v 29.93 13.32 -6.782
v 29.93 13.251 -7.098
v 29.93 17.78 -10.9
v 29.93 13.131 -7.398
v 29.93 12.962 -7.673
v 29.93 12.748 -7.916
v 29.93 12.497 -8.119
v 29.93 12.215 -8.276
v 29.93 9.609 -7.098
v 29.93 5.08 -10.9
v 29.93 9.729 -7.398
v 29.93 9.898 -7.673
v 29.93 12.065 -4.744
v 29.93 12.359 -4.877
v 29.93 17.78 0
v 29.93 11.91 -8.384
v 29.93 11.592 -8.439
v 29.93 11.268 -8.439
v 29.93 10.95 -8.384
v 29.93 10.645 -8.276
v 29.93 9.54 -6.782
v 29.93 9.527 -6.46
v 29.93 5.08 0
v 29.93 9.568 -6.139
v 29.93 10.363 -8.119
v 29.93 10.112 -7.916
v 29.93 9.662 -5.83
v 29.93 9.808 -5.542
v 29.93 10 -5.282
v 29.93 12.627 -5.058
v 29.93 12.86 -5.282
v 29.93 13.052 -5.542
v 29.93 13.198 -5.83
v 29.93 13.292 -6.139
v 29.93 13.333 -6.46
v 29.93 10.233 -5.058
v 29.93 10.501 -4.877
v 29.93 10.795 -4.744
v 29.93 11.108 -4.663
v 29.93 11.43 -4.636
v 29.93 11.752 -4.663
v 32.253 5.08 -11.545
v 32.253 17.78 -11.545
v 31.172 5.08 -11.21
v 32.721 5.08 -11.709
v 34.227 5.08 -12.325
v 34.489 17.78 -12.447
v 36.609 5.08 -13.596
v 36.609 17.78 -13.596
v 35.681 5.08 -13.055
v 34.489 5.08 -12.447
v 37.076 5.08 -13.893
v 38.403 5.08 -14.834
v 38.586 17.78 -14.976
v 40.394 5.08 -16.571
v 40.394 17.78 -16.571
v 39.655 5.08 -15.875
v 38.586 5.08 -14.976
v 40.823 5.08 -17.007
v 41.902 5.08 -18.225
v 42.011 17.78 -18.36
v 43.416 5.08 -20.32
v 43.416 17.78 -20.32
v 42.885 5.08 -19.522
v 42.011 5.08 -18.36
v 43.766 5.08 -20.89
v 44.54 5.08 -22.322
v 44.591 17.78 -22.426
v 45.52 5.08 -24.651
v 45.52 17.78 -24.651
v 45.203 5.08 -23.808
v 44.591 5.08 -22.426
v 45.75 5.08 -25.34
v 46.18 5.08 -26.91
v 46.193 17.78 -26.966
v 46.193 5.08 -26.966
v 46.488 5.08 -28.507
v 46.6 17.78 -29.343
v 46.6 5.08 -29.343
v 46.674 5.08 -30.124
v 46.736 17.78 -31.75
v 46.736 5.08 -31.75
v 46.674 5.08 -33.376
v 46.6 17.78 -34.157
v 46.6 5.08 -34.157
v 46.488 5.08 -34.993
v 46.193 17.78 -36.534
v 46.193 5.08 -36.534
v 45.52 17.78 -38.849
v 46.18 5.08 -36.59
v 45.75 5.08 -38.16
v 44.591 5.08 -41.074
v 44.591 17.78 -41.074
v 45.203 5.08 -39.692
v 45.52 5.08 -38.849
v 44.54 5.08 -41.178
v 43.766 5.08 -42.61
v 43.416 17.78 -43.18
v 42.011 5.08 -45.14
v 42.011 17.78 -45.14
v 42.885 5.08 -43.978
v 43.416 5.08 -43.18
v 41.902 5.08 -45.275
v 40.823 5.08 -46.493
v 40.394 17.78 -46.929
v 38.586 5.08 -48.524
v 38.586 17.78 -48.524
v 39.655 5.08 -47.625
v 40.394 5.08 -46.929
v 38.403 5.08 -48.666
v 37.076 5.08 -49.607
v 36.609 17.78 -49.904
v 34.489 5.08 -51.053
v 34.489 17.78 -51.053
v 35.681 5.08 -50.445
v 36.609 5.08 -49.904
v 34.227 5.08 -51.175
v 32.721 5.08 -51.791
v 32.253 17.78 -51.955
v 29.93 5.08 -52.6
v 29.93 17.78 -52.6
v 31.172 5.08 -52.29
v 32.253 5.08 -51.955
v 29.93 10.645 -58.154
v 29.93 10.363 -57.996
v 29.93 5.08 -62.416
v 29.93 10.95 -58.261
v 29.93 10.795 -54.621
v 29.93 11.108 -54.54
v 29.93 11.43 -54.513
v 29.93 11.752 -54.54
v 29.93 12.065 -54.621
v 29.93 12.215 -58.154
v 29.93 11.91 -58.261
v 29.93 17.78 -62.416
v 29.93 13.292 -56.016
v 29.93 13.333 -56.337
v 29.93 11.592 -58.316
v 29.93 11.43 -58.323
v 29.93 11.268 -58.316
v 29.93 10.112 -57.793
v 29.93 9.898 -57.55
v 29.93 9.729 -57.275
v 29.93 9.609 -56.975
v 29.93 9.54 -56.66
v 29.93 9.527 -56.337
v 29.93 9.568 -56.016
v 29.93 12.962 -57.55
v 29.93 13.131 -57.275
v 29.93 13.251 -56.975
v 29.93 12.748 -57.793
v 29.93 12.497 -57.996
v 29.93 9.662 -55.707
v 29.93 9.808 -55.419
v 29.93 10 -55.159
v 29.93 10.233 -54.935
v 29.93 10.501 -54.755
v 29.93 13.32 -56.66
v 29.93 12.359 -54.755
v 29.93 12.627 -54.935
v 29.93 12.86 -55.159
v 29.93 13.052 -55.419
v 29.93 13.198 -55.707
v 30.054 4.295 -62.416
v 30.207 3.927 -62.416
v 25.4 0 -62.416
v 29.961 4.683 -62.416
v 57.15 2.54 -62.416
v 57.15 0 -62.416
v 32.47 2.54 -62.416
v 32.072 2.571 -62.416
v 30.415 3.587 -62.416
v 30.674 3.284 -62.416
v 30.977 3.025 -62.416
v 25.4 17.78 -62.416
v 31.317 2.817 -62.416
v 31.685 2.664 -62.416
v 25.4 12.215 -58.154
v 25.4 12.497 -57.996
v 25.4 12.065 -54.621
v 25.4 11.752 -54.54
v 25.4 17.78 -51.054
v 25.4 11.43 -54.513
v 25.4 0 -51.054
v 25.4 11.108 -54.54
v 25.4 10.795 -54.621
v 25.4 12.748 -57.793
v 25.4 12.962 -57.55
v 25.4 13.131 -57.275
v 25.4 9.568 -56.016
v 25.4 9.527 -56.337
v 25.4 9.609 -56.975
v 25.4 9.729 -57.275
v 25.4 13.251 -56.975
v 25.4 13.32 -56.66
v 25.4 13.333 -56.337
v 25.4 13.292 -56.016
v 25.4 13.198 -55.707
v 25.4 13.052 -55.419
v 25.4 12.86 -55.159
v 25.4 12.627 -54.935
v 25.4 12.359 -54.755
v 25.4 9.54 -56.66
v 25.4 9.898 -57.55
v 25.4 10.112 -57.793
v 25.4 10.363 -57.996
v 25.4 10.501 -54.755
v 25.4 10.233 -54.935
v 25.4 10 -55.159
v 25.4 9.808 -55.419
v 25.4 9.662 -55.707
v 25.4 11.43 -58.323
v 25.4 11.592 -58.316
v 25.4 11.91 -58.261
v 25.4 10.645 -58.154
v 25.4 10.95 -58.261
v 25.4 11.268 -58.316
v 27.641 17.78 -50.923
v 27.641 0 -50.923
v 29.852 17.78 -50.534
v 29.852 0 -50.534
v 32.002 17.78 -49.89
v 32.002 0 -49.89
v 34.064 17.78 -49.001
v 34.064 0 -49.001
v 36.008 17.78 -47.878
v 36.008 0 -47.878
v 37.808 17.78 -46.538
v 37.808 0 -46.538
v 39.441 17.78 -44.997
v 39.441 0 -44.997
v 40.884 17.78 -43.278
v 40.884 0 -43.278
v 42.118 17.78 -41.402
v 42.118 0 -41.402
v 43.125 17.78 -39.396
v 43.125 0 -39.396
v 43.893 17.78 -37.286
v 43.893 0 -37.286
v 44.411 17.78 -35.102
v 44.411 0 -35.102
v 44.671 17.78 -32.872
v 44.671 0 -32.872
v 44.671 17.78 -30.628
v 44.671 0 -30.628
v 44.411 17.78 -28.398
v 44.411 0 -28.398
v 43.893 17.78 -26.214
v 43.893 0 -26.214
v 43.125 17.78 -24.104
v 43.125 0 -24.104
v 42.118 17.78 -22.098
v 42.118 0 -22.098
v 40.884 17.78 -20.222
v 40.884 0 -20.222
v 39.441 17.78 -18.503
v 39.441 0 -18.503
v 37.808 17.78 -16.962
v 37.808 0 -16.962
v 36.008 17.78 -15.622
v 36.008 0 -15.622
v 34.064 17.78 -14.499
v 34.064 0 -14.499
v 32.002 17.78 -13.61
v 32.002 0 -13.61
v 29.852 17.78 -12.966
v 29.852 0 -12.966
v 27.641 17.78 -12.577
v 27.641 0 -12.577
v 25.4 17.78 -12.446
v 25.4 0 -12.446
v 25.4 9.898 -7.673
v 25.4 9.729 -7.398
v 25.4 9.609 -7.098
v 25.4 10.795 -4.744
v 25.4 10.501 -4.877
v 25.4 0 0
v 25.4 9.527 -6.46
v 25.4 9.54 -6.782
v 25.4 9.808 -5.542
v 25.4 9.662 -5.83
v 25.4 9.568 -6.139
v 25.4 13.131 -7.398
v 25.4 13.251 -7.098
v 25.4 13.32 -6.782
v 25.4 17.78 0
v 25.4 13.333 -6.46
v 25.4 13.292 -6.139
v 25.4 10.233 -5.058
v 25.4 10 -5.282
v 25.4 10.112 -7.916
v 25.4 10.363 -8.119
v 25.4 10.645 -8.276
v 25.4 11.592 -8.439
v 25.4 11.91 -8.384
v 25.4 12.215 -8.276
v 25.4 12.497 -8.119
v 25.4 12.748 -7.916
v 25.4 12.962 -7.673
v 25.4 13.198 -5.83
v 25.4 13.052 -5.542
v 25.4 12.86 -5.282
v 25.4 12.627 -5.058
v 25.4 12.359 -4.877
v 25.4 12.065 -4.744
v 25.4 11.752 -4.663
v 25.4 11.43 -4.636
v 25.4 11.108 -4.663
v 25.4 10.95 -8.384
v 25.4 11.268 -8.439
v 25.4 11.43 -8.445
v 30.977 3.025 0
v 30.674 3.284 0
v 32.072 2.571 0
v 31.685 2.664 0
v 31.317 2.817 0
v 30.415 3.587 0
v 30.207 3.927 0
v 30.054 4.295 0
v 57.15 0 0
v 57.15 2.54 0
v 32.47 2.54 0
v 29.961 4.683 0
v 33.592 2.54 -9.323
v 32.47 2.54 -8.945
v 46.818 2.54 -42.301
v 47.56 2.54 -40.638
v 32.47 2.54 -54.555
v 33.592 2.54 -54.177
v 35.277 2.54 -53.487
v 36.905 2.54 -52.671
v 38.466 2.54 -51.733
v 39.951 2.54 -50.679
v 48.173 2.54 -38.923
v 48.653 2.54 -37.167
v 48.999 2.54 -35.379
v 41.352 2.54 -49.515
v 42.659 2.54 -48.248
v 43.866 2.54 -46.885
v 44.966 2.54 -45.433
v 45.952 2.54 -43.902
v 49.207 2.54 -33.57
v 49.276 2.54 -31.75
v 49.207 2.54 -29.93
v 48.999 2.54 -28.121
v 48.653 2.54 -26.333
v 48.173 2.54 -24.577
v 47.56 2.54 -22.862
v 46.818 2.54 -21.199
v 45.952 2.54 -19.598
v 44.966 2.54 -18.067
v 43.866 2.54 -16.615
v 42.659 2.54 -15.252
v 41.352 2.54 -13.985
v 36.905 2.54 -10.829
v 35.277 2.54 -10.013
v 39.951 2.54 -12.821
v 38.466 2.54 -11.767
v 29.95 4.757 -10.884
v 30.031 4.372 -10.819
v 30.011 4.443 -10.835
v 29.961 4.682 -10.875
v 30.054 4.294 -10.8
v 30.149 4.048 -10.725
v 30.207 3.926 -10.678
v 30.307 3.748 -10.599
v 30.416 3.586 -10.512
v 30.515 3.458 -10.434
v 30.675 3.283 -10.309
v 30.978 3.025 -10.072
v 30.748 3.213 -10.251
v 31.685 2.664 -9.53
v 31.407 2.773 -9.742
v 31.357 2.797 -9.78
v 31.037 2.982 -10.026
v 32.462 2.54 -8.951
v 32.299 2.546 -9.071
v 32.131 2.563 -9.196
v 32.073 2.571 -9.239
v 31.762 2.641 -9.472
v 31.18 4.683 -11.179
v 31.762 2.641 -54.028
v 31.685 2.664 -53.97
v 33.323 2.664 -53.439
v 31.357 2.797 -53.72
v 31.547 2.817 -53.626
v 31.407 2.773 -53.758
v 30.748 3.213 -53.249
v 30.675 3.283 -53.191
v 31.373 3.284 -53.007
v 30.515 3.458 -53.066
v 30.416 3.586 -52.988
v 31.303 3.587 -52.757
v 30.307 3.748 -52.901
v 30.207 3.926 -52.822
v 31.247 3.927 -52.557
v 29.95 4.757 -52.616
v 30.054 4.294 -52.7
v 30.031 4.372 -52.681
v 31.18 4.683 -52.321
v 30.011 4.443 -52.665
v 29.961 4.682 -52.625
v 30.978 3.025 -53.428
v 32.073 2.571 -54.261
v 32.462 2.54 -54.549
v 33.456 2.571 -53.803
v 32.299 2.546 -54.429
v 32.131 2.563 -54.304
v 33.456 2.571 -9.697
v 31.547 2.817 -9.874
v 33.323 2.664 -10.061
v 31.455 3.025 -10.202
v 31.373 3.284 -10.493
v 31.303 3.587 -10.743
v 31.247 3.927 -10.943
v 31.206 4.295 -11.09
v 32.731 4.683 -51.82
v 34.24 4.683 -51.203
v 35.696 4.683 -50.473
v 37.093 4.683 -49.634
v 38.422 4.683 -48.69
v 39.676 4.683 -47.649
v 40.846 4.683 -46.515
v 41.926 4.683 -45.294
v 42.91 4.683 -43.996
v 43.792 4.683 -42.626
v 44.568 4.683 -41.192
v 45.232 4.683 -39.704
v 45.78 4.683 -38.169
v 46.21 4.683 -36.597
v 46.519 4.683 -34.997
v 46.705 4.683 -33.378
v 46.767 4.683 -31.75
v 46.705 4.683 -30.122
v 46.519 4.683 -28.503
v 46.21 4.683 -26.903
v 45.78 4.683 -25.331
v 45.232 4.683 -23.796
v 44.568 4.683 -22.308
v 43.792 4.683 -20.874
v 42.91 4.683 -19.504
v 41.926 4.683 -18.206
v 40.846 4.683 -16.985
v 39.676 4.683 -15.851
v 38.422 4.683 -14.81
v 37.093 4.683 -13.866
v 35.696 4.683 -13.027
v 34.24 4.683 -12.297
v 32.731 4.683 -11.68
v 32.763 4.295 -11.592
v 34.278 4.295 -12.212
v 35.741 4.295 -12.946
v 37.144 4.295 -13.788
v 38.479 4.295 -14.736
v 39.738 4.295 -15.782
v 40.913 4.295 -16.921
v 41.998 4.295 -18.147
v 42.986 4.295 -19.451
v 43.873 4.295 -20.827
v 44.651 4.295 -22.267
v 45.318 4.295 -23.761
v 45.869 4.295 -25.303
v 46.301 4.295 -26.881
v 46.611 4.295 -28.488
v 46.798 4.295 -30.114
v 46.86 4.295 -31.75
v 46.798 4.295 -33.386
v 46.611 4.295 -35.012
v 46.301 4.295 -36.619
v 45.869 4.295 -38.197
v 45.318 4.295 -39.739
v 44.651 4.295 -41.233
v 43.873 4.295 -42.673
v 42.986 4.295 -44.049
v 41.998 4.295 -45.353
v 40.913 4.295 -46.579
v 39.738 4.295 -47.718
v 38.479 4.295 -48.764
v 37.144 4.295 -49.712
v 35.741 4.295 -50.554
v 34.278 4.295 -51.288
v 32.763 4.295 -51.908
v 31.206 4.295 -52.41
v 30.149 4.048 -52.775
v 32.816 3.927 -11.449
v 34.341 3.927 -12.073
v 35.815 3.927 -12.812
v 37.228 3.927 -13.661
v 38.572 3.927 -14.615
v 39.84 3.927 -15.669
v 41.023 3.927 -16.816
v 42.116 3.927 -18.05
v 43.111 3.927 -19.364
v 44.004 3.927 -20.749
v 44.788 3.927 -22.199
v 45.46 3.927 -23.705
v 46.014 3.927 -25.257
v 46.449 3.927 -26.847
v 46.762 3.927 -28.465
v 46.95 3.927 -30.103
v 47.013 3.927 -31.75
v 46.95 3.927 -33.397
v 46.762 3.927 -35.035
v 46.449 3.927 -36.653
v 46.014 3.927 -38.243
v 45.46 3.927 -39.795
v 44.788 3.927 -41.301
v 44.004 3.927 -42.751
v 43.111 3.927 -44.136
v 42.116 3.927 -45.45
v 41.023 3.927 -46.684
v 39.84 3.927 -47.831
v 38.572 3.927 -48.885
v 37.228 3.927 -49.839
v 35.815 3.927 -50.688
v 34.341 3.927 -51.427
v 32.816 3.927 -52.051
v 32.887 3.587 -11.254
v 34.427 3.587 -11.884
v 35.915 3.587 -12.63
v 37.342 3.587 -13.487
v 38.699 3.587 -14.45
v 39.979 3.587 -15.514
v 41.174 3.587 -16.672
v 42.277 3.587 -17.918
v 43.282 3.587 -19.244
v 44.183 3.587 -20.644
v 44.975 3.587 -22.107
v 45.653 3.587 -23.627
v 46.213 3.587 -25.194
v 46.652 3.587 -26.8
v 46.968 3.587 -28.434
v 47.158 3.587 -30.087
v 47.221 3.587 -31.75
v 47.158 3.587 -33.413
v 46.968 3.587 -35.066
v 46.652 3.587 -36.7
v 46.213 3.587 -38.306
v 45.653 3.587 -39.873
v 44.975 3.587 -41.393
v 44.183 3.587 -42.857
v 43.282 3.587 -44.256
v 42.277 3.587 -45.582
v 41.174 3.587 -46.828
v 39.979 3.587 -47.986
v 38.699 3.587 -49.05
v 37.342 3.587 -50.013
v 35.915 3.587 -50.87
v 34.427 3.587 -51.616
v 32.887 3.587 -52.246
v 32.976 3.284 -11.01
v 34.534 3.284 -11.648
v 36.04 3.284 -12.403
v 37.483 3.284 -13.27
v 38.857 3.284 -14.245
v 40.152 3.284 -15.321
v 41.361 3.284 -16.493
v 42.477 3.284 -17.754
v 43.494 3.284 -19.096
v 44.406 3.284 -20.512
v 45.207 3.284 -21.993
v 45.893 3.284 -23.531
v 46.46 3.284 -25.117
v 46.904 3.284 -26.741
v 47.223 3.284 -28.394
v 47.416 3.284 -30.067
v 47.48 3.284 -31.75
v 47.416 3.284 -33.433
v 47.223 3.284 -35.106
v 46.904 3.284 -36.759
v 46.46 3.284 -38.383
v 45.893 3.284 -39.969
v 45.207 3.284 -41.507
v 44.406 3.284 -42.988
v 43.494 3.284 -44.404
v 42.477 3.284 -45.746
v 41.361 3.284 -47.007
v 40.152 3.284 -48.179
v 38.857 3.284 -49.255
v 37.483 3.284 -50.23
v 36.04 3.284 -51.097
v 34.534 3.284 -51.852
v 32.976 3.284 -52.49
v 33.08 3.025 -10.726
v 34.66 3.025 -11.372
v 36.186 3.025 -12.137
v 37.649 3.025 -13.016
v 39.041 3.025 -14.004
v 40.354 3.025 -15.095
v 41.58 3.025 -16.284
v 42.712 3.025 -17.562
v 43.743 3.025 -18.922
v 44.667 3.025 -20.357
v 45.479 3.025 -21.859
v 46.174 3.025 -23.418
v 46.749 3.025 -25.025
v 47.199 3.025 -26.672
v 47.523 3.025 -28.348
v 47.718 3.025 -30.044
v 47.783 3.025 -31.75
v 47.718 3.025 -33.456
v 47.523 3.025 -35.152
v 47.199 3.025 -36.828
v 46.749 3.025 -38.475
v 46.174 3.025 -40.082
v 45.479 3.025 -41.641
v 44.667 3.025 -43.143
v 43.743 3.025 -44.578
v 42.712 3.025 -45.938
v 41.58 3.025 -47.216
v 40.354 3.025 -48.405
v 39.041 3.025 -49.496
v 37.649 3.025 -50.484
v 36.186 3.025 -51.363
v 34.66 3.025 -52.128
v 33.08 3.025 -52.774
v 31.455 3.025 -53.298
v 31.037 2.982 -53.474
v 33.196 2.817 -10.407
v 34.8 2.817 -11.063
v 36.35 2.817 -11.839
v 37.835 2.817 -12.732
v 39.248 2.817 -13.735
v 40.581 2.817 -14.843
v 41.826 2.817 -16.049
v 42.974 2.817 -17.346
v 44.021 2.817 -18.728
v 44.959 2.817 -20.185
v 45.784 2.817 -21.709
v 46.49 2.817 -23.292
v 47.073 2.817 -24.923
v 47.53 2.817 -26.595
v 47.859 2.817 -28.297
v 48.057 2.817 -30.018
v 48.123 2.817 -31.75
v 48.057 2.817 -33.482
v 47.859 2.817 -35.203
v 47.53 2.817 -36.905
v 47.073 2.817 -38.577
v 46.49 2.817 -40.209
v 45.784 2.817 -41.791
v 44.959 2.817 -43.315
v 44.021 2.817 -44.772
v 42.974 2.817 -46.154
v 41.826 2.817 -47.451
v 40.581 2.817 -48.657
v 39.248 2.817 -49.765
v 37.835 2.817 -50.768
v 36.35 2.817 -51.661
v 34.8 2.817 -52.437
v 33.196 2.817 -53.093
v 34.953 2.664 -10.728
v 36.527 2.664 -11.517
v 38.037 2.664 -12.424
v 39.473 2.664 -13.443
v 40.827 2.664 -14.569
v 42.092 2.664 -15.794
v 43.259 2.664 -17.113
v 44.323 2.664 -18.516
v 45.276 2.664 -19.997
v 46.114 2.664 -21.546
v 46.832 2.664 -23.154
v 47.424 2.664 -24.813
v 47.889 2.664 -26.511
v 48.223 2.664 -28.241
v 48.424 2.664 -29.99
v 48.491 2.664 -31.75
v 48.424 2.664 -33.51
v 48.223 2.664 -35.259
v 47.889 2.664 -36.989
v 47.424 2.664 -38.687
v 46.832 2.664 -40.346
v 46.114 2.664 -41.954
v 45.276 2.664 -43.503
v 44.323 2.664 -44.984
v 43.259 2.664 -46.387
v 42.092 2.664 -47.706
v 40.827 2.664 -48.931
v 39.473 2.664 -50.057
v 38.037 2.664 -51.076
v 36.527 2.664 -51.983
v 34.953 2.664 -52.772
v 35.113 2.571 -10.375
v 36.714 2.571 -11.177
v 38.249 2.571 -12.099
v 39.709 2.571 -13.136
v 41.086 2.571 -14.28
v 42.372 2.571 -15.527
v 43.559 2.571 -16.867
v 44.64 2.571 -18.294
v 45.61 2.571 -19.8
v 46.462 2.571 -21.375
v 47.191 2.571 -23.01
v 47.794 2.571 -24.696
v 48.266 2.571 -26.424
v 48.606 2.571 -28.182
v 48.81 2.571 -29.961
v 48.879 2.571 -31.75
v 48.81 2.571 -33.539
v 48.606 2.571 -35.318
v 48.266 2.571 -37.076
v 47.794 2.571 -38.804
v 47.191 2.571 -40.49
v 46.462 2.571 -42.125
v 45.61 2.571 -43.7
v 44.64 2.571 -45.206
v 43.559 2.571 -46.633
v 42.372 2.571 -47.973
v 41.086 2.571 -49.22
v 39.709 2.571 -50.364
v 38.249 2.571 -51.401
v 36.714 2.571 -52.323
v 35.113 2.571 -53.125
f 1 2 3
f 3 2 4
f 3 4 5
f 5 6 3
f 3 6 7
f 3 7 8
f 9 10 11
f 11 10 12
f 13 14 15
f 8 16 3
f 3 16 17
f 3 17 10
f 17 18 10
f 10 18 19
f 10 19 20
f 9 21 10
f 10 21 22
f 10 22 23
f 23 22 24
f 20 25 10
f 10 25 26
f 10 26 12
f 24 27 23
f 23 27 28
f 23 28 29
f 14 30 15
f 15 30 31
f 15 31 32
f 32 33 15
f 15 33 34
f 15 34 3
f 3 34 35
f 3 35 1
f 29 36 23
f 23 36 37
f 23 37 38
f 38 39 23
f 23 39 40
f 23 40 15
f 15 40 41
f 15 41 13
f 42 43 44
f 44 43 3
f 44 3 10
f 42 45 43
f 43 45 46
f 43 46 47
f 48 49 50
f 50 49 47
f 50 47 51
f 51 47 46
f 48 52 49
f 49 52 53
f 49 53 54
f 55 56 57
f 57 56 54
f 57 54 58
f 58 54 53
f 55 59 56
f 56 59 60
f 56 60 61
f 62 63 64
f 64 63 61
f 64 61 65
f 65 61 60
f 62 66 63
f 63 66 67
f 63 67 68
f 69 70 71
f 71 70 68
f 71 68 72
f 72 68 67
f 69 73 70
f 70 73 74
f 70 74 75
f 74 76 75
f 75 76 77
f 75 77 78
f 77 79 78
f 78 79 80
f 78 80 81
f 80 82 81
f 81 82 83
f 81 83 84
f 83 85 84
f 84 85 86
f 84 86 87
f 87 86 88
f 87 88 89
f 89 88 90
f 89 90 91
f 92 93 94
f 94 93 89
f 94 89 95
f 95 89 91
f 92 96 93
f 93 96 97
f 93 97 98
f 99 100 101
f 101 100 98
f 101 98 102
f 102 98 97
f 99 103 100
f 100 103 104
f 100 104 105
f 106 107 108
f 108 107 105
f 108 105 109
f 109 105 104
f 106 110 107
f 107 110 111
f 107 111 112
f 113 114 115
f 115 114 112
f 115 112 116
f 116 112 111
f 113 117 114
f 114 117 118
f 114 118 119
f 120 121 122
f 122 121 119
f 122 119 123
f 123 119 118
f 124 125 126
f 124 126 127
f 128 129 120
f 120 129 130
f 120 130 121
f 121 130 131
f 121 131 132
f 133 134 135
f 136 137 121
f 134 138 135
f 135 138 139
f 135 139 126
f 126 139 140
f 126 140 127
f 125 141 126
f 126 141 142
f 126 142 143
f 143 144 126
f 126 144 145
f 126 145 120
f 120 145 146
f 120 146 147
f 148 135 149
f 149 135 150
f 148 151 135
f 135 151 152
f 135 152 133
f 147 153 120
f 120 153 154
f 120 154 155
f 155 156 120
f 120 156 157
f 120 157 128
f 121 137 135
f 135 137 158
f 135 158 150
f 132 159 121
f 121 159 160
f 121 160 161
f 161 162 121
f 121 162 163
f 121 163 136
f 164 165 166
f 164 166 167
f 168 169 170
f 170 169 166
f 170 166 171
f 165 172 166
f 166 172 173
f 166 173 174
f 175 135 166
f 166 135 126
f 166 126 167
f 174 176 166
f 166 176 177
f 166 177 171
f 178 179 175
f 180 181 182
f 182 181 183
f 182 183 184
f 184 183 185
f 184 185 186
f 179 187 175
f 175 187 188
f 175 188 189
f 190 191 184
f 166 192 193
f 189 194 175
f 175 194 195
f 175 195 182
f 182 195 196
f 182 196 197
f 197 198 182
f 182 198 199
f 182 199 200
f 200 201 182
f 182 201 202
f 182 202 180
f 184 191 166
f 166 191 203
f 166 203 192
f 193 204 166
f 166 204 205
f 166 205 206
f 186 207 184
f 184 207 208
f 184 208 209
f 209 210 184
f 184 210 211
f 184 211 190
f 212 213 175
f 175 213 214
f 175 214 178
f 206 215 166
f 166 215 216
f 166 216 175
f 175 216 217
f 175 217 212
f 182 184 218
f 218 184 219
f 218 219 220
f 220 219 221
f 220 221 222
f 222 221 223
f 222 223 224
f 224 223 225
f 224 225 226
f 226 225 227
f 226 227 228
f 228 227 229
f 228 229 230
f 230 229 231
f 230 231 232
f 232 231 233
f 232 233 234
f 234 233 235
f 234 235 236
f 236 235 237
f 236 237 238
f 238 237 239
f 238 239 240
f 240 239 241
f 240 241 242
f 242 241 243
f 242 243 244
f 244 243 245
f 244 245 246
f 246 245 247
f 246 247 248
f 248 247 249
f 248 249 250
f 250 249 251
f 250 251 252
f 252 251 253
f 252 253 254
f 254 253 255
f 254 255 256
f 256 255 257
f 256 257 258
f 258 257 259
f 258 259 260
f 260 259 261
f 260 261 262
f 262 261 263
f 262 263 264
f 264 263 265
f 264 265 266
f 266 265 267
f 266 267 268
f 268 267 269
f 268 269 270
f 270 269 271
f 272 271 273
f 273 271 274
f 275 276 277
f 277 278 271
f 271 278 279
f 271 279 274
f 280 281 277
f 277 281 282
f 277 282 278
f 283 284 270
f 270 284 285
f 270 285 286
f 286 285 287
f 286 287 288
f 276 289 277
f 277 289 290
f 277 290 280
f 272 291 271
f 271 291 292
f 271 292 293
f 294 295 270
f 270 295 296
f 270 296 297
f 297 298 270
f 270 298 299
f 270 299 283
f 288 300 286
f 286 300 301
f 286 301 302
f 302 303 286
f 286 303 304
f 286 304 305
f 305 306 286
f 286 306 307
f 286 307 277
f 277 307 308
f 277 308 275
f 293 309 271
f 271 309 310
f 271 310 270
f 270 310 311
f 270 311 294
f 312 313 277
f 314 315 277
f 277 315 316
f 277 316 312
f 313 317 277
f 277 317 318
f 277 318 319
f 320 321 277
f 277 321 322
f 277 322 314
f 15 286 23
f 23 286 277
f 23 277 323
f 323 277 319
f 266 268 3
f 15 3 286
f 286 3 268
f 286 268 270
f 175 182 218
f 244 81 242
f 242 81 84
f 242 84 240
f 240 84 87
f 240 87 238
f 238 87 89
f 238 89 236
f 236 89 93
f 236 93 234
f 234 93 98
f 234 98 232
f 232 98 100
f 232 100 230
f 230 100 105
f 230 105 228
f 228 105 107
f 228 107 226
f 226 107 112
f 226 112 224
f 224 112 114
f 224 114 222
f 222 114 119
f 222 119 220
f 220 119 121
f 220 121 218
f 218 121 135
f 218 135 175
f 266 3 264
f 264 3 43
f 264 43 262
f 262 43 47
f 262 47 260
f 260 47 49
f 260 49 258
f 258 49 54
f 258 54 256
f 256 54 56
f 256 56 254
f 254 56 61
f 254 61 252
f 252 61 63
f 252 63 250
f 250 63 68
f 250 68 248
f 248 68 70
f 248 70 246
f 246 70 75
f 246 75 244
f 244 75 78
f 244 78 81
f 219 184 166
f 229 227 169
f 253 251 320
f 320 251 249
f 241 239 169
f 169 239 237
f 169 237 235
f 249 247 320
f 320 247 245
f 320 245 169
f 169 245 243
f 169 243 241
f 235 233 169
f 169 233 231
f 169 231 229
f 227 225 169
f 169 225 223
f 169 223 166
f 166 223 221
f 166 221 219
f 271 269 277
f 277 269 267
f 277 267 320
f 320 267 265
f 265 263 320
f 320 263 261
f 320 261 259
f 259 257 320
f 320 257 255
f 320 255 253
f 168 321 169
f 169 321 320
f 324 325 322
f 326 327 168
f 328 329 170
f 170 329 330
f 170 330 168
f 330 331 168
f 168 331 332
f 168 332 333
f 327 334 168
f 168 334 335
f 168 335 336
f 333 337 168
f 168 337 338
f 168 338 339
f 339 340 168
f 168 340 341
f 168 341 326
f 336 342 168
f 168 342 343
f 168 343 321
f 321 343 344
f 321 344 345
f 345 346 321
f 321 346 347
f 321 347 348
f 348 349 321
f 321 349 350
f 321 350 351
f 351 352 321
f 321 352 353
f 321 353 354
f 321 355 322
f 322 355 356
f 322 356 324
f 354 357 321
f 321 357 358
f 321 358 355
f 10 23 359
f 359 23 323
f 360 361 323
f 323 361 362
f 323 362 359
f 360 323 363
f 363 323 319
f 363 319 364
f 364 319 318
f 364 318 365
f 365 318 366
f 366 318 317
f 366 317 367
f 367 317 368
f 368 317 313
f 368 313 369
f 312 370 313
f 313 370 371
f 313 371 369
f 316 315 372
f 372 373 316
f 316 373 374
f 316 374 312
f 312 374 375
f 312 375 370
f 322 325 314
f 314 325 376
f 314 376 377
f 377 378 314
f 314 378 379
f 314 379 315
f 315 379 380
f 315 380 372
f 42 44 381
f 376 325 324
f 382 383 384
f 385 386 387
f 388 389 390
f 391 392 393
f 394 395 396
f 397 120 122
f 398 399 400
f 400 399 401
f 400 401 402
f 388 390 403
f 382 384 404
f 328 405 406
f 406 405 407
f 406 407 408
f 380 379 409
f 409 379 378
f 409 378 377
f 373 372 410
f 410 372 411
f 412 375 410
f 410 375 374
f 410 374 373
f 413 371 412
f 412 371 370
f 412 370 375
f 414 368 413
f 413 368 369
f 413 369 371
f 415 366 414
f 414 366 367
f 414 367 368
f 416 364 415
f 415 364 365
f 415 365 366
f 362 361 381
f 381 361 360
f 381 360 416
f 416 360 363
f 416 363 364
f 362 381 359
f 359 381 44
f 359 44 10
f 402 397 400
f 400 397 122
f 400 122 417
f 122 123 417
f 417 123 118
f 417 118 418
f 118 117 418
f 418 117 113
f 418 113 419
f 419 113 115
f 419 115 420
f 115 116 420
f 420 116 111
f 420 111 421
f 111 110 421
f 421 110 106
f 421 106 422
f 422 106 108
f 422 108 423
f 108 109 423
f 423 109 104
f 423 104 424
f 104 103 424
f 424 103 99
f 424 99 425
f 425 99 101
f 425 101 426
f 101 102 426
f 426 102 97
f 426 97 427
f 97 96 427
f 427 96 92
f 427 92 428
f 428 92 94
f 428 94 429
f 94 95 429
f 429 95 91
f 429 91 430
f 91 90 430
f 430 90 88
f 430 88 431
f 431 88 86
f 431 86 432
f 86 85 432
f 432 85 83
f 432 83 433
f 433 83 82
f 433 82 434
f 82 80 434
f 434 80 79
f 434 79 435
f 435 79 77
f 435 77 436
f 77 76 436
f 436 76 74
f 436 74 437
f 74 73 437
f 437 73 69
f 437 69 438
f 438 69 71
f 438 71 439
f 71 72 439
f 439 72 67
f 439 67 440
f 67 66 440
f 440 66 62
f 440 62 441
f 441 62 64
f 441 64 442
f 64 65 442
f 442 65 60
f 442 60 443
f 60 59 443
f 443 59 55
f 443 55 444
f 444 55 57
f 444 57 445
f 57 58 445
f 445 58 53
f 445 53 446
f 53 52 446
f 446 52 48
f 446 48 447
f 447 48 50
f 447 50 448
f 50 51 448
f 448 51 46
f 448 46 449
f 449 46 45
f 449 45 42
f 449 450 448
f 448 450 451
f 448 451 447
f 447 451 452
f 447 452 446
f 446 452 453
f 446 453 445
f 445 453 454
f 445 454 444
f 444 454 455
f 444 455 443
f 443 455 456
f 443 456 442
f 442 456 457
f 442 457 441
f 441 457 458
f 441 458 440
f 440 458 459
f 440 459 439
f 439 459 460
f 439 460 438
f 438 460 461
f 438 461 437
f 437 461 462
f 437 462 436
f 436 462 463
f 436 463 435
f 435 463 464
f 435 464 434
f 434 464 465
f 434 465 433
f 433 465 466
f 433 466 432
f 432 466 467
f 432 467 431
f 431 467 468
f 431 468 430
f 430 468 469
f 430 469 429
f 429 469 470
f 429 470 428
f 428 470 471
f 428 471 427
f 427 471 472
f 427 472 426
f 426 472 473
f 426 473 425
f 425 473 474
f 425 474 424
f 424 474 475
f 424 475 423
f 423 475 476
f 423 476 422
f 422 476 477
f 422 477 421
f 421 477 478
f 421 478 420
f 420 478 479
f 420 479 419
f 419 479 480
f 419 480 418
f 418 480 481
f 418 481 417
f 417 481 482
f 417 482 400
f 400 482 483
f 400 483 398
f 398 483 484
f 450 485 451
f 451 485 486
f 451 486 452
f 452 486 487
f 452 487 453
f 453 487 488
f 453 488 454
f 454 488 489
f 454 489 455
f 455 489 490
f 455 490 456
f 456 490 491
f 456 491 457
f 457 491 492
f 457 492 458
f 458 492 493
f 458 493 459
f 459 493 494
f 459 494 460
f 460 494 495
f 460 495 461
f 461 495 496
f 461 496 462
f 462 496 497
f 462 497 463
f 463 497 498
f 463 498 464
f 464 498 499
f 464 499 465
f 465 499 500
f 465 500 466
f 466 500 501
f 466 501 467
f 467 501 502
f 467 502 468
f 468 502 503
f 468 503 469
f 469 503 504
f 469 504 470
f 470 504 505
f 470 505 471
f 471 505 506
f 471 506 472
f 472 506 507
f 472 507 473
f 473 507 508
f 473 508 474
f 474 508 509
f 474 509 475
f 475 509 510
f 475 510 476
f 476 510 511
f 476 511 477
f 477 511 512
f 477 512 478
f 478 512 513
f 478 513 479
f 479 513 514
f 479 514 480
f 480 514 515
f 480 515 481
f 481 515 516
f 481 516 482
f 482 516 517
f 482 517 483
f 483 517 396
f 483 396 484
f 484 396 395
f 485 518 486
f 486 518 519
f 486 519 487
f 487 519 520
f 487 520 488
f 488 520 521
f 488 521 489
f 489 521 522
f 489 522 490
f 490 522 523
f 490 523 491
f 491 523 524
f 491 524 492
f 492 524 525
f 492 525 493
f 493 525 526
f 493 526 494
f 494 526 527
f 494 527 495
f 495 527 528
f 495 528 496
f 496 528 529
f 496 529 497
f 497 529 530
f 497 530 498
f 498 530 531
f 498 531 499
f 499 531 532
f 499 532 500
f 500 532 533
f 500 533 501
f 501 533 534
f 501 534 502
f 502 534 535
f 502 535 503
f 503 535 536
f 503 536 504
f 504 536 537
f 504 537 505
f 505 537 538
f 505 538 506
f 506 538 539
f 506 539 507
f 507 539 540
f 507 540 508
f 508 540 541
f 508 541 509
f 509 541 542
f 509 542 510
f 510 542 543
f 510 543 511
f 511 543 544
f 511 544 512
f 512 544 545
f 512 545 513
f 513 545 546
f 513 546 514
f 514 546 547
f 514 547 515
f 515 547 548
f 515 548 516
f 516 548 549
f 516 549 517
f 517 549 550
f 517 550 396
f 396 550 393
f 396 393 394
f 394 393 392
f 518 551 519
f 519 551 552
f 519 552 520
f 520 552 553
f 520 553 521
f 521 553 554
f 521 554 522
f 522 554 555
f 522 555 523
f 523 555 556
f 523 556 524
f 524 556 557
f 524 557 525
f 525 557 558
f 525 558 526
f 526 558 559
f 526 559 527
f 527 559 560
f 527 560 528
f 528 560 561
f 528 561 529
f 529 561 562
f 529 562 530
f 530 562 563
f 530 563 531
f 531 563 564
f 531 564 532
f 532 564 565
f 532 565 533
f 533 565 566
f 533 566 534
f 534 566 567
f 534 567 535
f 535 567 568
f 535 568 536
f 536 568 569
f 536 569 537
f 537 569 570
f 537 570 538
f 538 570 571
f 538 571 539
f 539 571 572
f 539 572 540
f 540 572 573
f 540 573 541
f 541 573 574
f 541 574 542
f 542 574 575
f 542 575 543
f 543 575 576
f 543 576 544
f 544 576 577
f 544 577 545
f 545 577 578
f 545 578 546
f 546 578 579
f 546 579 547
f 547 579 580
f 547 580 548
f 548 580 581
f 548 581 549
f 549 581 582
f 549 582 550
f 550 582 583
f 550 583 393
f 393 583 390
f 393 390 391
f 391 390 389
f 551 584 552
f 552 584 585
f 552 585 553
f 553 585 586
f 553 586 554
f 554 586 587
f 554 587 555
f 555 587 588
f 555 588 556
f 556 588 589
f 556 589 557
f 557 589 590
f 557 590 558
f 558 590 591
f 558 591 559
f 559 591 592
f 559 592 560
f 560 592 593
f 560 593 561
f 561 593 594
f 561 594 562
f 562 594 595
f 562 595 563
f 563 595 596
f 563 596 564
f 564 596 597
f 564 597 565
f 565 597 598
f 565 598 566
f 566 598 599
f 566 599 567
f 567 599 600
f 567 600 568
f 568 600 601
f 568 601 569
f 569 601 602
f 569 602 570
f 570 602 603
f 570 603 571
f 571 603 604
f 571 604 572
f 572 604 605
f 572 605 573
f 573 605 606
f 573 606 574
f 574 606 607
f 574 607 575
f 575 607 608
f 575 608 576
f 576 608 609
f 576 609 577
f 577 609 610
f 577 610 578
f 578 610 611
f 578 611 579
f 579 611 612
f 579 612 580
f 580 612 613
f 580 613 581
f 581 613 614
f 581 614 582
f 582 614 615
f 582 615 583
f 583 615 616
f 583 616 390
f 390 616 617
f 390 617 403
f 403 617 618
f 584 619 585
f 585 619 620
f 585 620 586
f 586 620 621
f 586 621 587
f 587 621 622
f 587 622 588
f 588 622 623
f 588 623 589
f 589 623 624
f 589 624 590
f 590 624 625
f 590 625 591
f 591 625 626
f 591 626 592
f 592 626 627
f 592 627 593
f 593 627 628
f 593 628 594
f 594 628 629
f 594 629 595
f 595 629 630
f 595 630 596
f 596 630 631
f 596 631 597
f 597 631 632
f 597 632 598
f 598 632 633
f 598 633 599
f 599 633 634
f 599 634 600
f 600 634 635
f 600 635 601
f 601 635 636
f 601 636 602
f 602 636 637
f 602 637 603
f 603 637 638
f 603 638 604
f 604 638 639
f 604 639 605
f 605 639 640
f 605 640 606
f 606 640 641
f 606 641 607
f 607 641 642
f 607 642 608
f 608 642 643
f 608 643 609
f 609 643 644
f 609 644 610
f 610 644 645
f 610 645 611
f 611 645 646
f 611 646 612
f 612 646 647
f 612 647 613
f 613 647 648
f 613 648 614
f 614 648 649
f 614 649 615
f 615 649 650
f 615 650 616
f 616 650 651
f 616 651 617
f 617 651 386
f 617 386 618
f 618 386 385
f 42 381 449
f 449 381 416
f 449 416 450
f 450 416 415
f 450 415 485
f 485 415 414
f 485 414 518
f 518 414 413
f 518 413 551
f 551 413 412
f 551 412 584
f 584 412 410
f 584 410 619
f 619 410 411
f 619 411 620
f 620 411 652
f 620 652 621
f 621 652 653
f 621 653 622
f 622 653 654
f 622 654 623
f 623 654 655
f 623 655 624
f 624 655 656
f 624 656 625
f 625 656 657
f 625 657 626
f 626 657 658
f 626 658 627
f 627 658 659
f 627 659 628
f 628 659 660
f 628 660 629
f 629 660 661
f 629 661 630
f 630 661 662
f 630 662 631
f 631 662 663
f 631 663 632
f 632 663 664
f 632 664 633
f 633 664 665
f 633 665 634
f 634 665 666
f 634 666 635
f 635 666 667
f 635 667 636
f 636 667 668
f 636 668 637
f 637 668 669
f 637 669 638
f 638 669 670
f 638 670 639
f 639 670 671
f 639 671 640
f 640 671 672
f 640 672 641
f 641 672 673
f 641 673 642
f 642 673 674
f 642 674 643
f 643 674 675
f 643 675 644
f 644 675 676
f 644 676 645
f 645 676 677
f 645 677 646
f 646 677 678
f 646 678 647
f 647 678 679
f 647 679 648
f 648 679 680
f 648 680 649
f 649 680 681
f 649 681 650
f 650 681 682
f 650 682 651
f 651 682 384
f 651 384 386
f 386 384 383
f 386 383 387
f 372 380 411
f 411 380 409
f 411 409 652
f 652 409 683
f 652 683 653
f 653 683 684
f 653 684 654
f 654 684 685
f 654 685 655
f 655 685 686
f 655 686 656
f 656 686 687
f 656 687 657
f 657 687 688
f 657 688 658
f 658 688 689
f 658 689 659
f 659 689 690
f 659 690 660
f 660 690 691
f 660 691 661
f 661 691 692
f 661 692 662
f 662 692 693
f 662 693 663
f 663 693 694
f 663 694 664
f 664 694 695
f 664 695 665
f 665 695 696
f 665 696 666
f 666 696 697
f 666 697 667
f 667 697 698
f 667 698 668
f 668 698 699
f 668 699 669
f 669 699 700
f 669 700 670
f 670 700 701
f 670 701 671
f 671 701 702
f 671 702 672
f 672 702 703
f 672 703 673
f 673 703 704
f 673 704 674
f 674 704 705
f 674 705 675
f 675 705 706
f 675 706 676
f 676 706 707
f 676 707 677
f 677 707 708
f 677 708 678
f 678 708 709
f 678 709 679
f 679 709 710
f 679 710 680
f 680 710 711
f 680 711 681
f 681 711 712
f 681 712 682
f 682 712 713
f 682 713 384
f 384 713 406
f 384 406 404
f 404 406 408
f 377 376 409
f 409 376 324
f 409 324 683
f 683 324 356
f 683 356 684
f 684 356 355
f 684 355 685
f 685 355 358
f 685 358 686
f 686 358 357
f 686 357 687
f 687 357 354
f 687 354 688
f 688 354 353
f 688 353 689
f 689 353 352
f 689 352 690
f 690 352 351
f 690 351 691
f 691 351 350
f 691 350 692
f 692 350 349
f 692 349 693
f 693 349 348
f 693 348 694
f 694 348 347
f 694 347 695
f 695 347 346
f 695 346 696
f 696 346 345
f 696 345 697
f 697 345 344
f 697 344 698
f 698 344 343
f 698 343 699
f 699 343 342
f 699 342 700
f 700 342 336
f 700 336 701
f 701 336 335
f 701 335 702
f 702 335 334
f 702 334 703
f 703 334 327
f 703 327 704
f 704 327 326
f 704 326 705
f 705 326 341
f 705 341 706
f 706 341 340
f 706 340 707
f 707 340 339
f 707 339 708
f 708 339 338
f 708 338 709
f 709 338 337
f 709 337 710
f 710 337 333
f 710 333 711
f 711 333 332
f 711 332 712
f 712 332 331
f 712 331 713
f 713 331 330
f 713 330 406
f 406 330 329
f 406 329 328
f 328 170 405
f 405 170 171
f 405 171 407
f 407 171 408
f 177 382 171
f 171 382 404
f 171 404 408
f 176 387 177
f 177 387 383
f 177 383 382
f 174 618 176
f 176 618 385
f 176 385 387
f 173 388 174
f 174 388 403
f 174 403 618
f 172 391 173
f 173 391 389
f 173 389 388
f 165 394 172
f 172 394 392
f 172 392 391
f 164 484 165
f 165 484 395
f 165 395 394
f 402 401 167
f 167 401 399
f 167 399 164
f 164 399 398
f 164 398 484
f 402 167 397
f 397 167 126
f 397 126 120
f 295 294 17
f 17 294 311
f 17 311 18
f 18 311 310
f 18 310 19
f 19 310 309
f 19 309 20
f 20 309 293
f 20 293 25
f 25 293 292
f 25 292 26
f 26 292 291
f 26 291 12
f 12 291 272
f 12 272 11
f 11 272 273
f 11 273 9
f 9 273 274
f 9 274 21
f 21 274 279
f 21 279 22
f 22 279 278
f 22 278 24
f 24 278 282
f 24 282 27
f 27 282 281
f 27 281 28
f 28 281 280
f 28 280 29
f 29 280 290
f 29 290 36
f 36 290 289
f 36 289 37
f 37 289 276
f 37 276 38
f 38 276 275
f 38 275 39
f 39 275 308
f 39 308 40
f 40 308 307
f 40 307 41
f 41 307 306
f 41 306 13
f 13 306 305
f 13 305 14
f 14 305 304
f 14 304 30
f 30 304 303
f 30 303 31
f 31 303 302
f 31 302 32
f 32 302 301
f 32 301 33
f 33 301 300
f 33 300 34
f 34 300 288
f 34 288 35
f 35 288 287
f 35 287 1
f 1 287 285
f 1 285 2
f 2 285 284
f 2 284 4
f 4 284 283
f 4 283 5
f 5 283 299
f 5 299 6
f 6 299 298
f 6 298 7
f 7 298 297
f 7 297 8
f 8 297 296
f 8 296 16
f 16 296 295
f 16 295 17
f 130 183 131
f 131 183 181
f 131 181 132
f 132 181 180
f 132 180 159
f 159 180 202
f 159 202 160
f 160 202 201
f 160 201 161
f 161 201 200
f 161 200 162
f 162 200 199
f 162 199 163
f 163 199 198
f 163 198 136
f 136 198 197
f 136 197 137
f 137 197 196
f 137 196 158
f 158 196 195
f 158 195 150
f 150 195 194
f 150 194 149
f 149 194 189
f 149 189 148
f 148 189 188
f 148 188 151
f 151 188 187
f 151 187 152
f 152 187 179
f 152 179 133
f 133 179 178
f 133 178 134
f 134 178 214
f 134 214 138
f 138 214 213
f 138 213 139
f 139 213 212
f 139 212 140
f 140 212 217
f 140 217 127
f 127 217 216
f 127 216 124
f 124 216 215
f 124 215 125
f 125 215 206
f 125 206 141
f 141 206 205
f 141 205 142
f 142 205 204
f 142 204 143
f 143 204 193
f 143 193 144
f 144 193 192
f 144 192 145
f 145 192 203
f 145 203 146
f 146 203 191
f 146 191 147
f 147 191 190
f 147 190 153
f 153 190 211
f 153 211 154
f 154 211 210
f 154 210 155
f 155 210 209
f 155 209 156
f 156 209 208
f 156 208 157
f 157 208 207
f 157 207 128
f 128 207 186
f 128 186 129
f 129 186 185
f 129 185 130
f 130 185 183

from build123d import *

# Parameters (mm, degrees)
BOSS_EXTRUDE12_DEPTH    = 17.78
BOSS_EXTRUDE13_DEPTH    = 2.54
FILLET2_R               = 2.54
SKETCH5_R               = 1.905
CUT_EXTRUDE1_DEPTH      = 58.15
CUT_EXTRUDE1_DEPTH_BACK = 1


with BuildPart() as part:
    # Sketch3 → Boss-Extrude12 (new body)
    with BuildSketch(Plane(origin=(0, 0, 0), x_dir=(1, 0, 0), z_dir=(0, 1, 0))):
        with BuildLine():
            Line((25.4, 12.446), (25.4, 0))
            Line((25.4, 0), (29.929832056, 0))
            Line((29.929832056, 0), (29.929832056, 10.900407257))
            ThreePointArc((29.929832056, 10.900407257), (46.736, 31.75), (29.929832056, 52.599592743))
            Line((29.929832056, 52.599592743), (29.929832056, 62.41624918))
            Line((29.929832056, 62.41624918), (25.4, 62.41624918))
            Line((25.4, 62.41624918), (25.4, 51.054))
            ThreePointArc((25.4, 51.054), (39.049989304, 45.399989304), (44.704, 31.75))
            ThreePointArc((44.704, 31.75), (39.049989304, 18.100010696), (25.4, 12.446))
        make_face()
    extrude(amount=BOSS_EXTRUDE12_DEPTH)

    # Sketch3<16> → Boss-Extrude13 (add)
    with BuildSketch(Plane(origin=(0, 0, 0), x_dir=(1, 0, 0), z_dir=(0, 1, 0))):
        with BuildLine():
            Line((29.929832056, 10.900407257), (29.929832056, 0))
            Line((29.929832056, 0), (57.15, 0))
            Line((57.15, 0), (57.15, 62.41624918))
            Line((57.15, 62.41624918), (29.929832056, 62.41624918))
            Line((29.929832056, 62.41624918), (29.929832056, 52.599592743))
            ThreePointArc((29.929832056, 52.599592743), (46.736, 31.75), (29.929832056, 10.900407257))
        make_face()
    extrude(amount=BOSS_EXTRUDE13_DEPTH)

    # Fillet2
    fillet2_edges = [part.edges().sort_by_distance(p)[0] for p in [
        (46.736, 2.54, -31.75),
        (29.929832056, 2.54, -5.450203629),
        (29.929832056, 2.54, -57.507920962),
    ]]
    fillet(fillet2_edges, radius=FILLET2_R)

    # Sketch5 → Cut-Extrude1 (cut, two sides)
    with BuildSketch(Plane(origin=(0, 0, 0), x_dir=(0, 0, -1), z_dir=(1, 0, 0))) as cut_extrude1_sk:
        with Locations((6.5405, 11.43)):
            Circle(SKETCH5_R)
        with Locations((56.41762459, 11.43)):
            Circle(SKETCH5_R)
    extrude(amount=CUT_EXTRUDE1_DEPTH, mode=Mode.SUBTRACT)
    extrude(cut_extrude1_sk.sketch, amount=-CUT_EXTRUDE1_DEPTH_BACK, mode=Mode.SUBTRACT)


solid = part.part
